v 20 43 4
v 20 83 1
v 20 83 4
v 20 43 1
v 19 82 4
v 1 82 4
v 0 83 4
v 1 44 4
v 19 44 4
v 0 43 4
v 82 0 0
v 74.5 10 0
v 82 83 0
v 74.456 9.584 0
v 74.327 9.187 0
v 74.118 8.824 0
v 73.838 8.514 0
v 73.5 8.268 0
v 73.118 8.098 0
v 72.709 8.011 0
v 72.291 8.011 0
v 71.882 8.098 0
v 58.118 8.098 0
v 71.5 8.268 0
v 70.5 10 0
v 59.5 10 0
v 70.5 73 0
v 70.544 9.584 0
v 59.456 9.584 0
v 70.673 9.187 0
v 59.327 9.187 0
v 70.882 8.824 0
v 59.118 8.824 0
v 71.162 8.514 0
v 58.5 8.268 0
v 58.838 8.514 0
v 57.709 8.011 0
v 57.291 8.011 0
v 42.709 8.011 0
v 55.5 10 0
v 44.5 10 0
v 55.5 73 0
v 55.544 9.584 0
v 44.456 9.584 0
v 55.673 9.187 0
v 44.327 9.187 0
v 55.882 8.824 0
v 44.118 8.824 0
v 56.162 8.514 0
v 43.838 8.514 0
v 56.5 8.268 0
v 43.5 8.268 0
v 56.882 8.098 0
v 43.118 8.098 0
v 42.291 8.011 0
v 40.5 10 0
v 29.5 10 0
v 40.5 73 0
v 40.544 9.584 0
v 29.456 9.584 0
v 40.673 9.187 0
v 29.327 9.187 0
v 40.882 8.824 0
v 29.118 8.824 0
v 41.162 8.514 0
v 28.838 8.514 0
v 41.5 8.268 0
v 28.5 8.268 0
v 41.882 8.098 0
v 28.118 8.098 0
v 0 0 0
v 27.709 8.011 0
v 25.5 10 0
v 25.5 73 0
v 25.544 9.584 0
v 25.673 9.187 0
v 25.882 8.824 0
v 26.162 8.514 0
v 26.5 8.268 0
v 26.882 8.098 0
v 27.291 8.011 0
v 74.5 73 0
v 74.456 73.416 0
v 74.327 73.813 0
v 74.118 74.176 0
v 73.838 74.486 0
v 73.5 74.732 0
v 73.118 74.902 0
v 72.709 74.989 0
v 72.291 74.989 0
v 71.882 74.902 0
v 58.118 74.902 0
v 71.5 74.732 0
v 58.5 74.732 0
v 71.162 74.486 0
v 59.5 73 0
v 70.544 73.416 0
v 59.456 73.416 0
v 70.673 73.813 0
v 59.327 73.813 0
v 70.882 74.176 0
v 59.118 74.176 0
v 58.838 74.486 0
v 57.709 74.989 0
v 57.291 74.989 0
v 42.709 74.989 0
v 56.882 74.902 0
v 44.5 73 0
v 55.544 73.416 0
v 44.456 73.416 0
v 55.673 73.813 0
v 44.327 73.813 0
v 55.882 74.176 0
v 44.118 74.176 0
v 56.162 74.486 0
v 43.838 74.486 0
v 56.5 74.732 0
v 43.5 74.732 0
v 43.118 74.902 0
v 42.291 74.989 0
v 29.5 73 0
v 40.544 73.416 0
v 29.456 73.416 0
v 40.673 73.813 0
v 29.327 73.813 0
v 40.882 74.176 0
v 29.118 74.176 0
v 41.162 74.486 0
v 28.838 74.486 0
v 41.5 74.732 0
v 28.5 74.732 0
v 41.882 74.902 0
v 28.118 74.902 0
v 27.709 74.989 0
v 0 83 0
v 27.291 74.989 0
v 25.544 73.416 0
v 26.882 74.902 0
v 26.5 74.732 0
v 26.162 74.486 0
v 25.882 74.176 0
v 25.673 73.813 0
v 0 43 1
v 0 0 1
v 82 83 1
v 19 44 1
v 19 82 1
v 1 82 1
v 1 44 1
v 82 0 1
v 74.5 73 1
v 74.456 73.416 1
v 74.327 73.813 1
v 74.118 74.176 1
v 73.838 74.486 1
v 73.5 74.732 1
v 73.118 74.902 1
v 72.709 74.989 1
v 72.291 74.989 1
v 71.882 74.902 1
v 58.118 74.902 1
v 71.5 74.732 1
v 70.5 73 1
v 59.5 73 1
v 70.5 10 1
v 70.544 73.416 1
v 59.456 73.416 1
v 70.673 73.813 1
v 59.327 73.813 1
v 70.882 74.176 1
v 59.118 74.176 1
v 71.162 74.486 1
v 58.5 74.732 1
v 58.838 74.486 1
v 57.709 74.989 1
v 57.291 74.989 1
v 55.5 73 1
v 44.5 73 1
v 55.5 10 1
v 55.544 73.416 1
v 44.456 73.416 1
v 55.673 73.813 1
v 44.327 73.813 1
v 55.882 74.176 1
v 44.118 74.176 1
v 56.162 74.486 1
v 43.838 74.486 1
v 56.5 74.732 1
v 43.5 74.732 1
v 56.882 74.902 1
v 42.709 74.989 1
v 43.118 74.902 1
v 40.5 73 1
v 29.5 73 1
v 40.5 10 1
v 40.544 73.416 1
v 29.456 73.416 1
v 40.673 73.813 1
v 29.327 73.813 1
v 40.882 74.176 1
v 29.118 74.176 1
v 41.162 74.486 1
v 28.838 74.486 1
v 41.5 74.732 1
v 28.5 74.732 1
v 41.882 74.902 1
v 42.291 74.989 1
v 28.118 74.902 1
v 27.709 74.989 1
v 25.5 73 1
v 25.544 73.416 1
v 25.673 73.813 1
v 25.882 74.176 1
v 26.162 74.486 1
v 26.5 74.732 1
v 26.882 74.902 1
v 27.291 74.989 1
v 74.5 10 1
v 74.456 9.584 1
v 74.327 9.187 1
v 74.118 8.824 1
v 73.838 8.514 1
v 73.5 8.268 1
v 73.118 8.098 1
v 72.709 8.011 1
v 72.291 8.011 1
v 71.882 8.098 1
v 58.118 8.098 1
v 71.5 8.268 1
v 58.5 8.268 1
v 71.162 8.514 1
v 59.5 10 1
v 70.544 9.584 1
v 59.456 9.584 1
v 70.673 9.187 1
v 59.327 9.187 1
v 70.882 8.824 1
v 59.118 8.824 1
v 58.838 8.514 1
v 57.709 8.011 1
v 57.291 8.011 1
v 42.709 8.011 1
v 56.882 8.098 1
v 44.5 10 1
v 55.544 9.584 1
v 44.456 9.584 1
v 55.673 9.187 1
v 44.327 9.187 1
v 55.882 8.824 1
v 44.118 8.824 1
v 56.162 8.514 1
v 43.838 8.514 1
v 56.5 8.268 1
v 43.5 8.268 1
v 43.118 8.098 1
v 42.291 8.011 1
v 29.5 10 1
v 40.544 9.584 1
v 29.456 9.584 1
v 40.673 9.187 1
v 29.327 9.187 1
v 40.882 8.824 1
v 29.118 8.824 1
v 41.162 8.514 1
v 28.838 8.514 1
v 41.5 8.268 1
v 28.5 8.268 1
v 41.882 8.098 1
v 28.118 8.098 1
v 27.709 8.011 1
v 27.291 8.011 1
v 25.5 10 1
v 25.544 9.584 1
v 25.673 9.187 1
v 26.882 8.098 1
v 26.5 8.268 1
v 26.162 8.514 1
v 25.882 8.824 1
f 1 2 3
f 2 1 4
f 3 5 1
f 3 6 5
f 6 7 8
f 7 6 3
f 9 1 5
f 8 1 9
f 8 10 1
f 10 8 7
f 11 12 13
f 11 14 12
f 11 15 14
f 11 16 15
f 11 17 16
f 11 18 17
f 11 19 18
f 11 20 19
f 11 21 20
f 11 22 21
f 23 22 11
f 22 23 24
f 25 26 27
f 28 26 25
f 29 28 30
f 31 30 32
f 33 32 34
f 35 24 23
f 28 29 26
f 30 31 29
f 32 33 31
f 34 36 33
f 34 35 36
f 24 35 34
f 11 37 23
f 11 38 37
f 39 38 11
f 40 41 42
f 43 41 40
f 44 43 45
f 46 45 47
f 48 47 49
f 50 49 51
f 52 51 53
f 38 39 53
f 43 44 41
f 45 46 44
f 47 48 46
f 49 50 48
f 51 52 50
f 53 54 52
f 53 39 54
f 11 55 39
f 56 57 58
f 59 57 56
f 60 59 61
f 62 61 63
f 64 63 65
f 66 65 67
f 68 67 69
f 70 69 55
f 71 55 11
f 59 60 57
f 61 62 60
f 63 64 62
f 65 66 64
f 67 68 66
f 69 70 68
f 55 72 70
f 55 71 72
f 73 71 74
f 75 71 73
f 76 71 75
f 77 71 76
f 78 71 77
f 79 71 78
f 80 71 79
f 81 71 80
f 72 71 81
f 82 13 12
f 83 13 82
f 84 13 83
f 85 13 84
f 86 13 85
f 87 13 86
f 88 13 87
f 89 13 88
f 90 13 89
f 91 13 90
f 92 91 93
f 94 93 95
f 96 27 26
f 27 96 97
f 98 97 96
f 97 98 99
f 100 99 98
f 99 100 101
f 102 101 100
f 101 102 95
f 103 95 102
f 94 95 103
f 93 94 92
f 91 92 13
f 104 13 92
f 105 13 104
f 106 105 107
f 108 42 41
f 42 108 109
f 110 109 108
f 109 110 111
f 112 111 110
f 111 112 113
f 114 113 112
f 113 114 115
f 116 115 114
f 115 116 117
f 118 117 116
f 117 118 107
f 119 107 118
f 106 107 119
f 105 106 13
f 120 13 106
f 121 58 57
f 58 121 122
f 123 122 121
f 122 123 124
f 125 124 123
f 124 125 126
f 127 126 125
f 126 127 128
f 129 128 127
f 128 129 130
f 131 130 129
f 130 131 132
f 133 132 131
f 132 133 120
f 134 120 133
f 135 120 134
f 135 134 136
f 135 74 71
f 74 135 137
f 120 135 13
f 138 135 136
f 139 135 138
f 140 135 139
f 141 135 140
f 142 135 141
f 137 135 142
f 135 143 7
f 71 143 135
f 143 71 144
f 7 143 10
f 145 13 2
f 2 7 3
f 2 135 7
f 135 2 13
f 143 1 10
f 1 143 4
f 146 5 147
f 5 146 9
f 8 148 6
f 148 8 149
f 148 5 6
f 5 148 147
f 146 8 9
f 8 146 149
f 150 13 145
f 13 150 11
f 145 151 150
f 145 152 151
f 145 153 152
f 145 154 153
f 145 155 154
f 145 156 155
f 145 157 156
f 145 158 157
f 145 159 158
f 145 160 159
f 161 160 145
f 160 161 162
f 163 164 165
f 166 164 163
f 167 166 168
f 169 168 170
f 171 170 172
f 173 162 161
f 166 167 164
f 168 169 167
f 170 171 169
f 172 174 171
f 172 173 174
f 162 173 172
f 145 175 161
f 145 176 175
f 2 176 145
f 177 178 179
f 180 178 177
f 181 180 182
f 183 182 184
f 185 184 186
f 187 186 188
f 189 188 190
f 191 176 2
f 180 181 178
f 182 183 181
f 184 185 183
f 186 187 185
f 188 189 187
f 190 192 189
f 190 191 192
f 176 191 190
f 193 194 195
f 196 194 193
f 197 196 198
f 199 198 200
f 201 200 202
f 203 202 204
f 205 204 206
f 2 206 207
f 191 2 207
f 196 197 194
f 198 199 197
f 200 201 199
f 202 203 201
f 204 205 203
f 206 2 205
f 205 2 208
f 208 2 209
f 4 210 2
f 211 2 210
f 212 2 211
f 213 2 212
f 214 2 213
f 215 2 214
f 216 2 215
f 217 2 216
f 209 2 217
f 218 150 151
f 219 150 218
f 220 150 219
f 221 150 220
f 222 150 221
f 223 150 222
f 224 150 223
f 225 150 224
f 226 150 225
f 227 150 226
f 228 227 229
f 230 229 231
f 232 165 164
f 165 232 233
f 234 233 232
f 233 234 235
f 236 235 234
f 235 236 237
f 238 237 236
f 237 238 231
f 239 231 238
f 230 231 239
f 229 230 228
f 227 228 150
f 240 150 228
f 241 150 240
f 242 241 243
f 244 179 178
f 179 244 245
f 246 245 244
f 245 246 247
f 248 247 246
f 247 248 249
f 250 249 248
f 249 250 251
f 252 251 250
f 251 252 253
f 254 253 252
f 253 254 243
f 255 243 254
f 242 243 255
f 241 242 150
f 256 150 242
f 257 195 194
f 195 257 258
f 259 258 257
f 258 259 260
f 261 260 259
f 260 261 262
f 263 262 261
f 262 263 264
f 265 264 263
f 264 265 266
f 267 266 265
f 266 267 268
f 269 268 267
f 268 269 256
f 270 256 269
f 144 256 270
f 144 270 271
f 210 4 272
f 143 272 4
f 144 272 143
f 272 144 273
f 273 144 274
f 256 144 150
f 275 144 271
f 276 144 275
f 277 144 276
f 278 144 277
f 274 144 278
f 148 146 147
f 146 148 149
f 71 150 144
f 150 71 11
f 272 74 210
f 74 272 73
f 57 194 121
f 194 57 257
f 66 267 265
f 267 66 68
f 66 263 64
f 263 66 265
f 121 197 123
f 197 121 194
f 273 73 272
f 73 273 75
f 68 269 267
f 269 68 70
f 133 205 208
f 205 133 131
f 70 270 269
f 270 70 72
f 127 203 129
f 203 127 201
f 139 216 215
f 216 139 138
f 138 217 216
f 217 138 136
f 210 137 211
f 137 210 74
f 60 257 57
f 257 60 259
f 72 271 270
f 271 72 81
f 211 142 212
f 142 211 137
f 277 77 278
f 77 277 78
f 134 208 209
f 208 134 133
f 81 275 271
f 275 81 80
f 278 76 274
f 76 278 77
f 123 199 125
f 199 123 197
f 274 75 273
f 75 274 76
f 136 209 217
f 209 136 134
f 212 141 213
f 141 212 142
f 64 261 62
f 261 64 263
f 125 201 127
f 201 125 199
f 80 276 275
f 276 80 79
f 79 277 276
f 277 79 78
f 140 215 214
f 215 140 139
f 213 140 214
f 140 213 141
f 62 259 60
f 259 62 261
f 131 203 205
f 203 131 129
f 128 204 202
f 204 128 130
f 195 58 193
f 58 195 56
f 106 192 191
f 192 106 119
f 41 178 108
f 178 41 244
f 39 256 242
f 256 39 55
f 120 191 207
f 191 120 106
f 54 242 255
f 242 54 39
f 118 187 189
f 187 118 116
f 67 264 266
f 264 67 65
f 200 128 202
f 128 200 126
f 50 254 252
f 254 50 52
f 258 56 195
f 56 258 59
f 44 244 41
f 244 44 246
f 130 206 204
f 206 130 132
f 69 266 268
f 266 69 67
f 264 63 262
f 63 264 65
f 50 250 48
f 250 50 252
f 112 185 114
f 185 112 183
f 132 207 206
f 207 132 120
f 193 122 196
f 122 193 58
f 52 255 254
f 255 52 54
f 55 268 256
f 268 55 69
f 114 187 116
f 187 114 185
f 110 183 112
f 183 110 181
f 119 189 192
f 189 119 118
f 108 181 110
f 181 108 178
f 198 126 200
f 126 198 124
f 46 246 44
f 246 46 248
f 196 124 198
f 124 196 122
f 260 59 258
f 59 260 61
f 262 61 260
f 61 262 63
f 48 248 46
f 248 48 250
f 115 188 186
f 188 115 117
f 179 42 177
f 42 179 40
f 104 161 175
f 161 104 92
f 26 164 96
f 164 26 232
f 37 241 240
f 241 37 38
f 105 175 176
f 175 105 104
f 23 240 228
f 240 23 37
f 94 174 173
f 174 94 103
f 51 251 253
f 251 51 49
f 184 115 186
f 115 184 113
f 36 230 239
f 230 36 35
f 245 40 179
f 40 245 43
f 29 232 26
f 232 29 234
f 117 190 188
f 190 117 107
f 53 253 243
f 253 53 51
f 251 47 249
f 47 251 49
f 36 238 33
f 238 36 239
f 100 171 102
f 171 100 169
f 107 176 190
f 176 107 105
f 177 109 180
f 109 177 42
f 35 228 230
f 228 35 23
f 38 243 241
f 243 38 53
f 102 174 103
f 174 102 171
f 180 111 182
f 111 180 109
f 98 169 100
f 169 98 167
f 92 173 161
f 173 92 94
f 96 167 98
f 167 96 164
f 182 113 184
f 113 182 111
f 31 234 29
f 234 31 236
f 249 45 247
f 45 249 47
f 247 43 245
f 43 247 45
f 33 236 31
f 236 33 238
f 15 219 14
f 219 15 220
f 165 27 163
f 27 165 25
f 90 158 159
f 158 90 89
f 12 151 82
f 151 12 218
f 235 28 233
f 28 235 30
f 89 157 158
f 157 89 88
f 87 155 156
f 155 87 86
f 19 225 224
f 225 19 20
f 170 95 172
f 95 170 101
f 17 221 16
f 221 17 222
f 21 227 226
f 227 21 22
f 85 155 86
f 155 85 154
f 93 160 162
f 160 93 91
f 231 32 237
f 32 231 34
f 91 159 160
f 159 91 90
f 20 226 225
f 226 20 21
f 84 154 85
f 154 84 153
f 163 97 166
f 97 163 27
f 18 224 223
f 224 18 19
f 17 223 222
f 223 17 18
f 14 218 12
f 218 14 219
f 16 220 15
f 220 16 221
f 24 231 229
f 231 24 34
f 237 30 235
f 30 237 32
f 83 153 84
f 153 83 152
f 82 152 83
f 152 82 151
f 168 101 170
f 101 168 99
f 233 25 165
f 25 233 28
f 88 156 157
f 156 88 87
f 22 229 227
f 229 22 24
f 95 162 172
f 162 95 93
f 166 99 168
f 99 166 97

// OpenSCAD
$fn = 30;

wb = 17+1;
lb = 37+1;
hb = 4;

difference(){
union(){
cube([82,83,1]);

translate([0,83-lb-2,0]){
translate([wb+2,lb+2,hb]*0.5){
difference(){
cube([wb+2,lb+2,hb],center = true);
cube([wb,lb,hb],center = true);
}}}}


for(ii = [0,1,2,3]){
translate([27.5 + ii*15,10,0]){
hull(){
cylinder(1,2,2);
translate([0,83-20,0]){
cylinder(1,2,2);
}}}}

}
